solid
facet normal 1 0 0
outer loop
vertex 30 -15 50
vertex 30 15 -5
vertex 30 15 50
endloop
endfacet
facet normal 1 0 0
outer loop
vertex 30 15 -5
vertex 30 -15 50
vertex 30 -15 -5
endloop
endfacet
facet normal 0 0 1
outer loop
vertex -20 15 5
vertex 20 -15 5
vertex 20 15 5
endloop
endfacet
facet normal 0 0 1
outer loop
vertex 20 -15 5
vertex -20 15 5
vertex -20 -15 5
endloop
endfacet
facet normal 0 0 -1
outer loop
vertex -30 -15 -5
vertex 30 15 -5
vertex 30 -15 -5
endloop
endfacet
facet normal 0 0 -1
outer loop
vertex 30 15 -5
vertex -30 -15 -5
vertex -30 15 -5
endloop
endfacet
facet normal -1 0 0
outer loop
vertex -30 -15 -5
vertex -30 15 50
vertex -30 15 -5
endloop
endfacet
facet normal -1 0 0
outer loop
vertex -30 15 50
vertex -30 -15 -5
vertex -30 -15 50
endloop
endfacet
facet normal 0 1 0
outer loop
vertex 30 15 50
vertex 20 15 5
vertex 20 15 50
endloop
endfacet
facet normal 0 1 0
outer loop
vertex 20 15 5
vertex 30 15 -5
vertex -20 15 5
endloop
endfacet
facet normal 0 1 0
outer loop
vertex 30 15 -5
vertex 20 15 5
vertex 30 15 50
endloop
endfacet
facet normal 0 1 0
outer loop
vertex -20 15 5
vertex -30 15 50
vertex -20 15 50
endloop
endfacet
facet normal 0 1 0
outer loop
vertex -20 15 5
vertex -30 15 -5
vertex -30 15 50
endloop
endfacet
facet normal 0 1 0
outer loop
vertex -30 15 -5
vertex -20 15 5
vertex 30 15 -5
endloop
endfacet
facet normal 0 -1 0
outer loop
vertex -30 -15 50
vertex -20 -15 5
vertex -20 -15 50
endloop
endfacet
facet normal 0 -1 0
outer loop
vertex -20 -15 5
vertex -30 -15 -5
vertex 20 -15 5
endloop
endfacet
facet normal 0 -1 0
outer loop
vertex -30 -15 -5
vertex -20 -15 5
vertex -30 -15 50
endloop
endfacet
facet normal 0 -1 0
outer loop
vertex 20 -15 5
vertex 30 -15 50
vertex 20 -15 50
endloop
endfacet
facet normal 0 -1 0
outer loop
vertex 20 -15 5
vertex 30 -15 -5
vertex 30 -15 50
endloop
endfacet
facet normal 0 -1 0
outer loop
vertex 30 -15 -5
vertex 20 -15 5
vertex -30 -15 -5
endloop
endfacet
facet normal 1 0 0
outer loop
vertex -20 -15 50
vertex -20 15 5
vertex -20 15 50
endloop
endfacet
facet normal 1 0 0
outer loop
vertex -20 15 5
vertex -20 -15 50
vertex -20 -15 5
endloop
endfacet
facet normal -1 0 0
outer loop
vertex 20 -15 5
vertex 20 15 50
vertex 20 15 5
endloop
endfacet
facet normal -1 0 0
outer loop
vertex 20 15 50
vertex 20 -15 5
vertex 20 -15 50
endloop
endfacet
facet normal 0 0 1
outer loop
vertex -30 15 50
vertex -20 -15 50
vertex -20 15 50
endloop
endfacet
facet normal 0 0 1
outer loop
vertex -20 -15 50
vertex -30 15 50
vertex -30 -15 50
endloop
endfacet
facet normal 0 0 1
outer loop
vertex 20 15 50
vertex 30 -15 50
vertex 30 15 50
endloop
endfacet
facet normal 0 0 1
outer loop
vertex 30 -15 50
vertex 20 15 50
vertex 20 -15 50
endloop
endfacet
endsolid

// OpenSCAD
// Base block dimensions
base_length = 60;  // Length of the base block
base_width = 30;   // Width of the base block
base_height = 10;  // Height of the base block
slot_width = 10;   // Width of the vertical arm slots
slot_depth = 20;   // Depth of the vertical arm slots

// Vertical arm dimensions
arm_width = slot_width;  // Width of the vertical arms
arm_depth = slot_depth;  // Depth of the vertical arms
arm_height = 40;         // Height of the vertical arms

// Base block
module base_block() {
    cube([base_length, base_width, base_height], center = true); // Flat top surface
    translate([-base_length / 2 + slot_width / 2, 0, base_height / 2]) {
        cube([slot_width, base_width, slot_depth], center = true);
    }
    translate([base_length / 2 - slot_width / 2, 0, base_height / 2]) {
        cube([slot_width, base_width, slot_depth], center = true);
    }
}

// Vertical arm (left)
module vertical_arm_left() {
    translate([-base_length / 2 + slot_width / 2, 0, base_height + arm_height / 2]) {
        cube([arm_width, base_width, arm_height], center = true); // Adjusted to vertical position
    }
}

// Vertical arm (right)
module vertical_arm_right() {
    translate([base_length / 2 - slot_width / 2, 0, base_height + arm_height / 2]) {
        cube([arm_width, base_width, arm_height], center = true); // Adjusted to vertical position
    }
}

// Assemble the model
module flexible_coupling() {
    base_block();
    vertical_arm_left();
    vertical_arm_right();
}

// Render the model
flexible_coupling();
